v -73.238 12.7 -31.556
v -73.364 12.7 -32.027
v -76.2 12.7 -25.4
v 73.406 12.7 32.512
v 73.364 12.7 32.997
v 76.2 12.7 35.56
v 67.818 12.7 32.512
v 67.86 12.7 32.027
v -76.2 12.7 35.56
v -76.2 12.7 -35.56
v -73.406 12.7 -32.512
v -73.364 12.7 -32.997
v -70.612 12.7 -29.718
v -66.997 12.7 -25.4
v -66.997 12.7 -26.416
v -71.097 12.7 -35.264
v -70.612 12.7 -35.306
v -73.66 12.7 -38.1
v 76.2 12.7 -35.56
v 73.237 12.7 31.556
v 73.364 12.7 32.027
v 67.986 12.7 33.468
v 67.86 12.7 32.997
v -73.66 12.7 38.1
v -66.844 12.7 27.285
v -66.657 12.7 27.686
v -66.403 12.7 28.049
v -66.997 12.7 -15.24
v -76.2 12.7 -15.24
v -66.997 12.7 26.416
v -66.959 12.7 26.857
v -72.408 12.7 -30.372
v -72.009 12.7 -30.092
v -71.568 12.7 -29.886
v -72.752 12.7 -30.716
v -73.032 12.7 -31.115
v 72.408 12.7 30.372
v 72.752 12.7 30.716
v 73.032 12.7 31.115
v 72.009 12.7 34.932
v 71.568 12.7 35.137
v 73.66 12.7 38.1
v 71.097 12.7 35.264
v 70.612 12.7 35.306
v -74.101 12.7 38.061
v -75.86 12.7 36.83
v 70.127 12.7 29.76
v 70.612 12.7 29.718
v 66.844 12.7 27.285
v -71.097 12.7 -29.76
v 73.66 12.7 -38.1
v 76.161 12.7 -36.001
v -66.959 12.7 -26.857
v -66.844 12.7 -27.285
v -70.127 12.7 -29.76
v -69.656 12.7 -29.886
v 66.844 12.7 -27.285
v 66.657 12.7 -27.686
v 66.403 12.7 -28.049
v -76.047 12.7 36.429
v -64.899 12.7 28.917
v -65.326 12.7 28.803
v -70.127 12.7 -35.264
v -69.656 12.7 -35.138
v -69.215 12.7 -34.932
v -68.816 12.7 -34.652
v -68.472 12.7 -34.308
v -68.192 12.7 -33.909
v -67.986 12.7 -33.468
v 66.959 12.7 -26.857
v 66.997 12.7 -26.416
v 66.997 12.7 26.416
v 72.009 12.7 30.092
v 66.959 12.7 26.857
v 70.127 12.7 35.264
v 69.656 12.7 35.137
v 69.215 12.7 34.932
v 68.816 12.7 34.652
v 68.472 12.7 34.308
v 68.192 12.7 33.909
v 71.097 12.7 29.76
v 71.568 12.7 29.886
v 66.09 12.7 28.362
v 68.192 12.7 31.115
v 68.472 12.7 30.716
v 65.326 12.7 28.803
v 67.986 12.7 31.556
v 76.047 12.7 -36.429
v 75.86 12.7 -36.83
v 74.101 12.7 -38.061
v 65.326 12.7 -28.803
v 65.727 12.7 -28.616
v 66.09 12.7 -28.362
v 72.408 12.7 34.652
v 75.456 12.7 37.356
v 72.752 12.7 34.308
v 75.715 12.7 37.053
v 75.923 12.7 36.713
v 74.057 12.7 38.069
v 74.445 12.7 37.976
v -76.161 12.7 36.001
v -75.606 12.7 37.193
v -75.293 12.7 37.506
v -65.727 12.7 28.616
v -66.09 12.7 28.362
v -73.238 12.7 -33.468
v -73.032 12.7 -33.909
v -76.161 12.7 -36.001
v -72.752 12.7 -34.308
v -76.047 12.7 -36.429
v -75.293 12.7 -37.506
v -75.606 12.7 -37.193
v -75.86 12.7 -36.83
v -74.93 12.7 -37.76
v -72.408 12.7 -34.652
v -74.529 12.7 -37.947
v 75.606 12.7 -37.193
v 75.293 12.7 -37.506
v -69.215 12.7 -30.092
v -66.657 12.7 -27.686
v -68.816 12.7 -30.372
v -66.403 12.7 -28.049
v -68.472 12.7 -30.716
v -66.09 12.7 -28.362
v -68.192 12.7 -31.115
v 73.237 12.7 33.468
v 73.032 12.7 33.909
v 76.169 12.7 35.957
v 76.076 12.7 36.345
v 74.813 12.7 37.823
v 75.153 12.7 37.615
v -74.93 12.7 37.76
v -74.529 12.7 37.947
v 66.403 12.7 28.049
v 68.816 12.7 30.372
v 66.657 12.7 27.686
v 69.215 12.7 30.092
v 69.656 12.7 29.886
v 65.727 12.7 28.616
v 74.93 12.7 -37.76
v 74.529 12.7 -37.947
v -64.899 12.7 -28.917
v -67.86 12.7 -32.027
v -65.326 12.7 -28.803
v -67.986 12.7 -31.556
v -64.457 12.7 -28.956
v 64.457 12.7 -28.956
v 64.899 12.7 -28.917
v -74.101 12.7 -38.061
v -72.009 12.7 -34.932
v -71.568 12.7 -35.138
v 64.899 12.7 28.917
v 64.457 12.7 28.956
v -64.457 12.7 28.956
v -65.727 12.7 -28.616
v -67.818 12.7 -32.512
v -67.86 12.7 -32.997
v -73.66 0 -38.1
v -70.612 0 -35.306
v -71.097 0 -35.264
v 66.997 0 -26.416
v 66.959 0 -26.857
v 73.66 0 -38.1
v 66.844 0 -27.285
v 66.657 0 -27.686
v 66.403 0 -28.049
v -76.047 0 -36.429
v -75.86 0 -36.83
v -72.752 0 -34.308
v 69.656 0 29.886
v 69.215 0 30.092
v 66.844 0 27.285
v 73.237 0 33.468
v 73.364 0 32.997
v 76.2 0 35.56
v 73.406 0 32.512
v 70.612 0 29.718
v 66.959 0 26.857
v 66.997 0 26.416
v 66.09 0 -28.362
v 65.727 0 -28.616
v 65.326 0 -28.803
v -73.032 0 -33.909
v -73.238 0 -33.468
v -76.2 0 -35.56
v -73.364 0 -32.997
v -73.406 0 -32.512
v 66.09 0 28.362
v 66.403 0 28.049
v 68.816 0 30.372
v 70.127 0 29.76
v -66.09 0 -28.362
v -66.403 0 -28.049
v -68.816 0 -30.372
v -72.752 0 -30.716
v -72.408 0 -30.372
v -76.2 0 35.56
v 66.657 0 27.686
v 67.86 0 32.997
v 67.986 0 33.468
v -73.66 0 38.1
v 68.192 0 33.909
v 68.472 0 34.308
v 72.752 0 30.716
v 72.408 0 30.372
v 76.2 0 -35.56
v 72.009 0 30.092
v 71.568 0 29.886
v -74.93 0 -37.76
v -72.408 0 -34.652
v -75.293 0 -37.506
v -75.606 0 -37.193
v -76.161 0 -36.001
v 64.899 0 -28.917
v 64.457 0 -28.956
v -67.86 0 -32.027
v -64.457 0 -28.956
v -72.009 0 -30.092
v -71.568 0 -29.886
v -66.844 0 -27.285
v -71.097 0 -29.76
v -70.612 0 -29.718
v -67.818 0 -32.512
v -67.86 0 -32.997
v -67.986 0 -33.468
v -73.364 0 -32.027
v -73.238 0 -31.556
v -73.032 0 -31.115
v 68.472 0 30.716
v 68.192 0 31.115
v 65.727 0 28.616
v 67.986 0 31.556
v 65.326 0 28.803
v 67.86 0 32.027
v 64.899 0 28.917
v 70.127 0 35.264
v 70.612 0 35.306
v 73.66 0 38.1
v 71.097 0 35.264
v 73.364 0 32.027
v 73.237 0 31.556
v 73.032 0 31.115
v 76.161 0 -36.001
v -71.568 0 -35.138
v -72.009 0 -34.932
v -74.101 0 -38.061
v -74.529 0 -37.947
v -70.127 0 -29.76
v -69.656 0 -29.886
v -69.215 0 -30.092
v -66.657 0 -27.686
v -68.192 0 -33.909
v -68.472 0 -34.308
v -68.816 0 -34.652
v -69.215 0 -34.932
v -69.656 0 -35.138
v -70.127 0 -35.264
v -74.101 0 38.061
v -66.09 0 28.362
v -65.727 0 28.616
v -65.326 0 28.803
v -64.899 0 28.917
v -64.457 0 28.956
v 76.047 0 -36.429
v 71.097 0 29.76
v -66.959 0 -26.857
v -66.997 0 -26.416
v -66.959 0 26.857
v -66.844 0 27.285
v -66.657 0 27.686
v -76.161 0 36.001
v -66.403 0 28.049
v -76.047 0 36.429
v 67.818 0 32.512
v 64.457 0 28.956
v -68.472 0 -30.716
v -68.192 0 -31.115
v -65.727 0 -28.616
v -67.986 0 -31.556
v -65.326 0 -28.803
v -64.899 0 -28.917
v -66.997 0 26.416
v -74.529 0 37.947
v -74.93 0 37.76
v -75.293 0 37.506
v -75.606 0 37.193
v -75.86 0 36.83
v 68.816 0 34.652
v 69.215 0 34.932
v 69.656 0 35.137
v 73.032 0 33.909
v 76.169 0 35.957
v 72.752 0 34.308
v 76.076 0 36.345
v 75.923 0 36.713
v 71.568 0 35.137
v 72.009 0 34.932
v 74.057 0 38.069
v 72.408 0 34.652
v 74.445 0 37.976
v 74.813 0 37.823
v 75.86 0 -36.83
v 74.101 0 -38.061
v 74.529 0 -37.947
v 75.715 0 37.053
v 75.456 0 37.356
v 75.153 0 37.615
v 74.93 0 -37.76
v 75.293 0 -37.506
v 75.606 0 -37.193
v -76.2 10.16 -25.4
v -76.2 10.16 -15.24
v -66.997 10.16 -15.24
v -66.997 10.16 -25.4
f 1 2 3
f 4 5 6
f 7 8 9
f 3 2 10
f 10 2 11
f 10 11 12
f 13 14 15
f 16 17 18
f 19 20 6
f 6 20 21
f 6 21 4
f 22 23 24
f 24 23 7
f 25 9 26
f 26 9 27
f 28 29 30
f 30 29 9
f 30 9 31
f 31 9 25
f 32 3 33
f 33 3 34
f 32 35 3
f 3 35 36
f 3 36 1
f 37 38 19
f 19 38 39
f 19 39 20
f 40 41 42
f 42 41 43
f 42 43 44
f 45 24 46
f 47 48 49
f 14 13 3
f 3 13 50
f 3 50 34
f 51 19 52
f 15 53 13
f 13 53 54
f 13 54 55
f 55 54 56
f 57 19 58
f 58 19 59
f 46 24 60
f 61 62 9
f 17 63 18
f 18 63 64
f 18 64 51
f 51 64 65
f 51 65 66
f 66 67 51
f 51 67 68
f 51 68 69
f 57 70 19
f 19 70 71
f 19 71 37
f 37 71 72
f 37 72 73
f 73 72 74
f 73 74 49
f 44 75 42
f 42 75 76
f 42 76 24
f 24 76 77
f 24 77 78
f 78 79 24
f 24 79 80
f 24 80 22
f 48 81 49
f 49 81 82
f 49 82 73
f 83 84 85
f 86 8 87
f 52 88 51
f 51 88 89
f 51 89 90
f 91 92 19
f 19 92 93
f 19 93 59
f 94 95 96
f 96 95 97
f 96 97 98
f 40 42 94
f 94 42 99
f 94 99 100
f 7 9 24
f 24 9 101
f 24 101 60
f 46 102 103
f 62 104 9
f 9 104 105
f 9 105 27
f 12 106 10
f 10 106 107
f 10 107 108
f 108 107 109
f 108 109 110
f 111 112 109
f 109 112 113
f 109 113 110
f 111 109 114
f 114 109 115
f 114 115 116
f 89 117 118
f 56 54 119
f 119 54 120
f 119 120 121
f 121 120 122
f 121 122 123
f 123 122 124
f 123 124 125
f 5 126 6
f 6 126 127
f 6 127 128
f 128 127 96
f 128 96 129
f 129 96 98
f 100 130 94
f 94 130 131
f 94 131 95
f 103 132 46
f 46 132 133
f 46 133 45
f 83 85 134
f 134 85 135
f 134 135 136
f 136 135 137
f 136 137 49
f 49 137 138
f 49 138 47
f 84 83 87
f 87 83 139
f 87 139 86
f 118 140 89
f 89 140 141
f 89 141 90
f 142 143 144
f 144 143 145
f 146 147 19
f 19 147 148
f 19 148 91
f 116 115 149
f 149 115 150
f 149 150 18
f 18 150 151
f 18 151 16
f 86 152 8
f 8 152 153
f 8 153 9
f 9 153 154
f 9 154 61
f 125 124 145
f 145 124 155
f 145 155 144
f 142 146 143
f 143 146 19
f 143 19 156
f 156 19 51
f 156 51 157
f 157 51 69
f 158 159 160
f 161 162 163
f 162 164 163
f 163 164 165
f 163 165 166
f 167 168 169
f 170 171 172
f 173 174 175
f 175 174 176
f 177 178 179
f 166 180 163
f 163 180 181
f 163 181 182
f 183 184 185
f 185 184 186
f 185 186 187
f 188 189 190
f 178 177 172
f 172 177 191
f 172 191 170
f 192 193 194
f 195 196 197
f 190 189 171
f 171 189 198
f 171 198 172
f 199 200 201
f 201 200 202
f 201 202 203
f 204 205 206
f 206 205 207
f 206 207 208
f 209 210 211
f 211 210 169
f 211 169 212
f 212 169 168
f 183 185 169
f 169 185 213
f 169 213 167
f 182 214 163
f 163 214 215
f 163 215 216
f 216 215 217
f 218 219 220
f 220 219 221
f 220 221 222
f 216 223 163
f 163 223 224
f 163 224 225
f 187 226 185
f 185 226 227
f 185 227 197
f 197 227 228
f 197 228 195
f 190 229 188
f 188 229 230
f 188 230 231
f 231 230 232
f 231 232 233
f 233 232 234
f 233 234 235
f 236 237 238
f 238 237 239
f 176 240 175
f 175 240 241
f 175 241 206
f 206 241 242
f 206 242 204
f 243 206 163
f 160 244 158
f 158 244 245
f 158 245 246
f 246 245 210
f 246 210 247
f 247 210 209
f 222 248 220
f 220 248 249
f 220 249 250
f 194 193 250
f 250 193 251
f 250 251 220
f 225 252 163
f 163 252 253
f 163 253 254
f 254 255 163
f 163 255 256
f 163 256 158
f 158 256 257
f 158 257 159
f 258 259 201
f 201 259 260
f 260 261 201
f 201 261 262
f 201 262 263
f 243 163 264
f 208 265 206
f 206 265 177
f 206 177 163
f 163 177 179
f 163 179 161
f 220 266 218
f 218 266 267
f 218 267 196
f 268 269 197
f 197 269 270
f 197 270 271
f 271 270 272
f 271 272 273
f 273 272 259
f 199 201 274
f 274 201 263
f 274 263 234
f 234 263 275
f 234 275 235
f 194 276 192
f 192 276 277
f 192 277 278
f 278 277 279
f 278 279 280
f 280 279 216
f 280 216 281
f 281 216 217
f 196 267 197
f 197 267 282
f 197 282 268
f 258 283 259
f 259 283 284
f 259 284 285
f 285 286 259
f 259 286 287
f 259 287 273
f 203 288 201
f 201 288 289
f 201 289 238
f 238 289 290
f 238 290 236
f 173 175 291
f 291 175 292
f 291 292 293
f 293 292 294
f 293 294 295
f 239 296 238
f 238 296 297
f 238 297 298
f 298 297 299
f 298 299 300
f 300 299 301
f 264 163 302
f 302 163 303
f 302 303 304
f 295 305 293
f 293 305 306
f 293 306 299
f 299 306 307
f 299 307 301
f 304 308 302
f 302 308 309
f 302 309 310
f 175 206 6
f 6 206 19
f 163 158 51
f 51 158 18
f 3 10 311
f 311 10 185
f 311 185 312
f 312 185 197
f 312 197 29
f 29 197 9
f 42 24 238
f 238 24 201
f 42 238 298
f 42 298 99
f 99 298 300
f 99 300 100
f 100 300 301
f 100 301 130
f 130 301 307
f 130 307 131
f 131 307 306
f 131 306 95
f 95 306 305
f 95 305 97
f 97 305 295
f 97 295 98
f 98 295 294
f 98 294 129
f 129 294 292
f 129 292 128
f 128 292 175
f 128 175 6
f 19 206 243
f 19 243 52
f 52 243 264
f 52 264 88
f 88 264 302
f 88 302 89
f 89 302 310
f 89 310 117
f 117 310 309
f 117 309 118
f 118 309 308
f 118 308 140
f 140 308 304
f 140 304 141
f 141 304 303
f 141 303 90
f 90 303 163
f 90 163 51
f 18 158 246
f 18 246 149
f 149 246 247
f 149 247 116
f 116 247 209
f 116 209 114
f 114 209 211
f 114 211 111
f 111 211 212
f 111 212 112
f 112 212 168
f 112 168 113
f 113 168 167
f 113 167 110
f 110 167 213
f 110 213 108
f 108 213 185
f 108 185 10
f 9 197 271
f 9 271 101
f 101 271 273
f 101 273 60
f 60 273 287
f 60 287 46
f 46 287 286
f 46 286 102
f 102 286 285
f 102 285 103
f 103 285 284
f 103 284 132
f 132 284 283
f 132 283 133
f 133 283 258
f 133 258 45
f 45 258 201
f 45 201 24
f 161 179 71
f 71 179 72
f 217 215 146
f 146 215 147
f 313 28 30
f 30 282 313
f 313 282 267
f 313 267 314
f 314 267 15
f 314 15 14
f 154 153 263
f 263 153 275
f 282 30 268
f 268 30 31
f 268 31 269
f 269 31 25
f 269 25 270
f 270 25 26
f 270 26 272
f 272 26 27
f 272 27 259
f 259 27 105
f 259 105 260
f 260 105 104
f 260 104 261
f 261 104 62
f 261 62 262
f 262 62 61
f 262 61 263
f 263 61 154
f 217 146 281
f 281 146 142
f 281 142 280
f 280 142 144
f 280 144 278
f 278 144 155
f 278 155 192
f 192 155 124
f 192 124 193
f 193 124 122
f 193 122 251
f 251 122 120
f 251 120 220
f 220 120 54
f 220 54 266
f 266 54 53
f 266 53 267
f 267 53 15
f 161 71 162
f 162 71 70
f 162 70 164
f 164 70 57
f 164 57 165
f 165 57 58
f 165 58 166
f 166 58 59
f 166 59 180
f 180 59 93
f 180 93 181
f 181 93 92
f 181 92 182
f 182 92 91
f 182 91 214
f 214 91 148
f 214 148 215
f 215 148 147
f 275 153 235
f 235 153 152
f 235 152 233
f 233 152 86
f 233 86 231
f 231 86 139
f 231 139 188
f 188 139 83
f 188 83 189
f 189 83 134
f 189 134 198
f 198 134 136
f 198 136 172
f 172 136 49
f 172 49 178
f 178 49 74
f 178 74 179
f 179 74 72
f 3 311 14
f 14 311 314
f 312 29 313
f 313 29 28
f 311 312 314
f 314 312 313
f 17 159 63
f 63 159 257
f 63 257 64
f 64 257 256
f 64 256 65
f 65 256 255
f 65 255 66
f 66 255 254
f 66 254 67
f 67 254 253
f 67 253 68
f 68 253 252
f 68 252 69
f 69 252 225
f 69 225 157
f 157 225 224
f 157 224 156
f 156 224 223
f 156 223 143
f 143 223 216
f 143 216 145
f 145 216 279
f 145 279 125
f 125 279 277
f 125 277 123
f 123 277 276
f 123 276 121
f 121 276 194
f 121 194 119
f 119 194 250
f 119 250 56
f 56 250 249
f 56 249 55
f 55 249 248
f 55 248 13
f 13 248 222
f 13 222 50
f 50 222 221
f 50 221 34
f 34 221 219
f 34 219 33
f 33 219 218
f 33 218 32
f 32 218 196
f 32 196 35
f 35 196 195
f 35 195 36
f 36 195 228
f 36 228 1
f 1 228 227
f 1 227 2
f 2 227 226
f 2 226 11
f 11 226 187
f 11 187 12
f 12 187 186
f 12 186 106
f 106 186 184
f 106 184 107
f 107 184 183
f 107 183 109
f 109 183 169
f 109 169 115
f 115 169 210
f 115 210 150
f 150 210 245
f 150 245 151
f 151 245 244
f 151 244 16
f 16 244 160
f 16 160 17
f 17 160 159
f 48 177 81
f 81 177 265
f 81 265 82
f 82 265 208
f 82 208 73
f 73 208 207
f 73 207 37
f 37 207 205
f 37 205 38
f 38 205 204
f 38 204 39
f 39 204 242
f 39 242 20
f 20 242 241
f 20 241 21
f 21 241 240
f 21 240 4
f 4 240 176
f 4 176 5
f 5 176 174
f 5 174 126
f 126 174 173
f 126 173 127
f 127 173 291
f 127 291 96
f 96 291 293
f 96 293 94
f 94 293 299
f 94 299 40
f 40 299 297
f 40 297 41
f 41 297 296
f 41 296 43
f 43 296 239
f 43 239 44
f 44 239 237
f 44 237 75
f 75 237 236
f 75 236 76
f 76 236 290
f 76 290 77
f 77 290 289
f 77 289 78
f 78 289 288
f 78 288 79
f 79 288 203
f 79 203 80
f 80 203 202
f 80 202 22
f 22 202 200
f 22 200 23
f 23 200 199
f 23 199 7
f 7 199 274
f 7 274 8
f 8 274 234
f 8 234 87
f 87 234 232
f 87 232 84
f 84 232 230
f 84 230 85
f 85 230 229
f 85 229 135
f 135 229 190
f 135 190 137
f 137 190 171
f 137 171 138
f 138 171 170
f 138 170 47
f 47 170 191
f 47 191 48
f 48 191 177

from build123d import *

# Parameters (mm, degrees)
SKETCH1_W           = 152.4
SKETCH1_H           = 76.2
BOSS_EXTRUDE1_DEPTH = 12.7
FILLET1_R           = 2.54
SKETCH3_W           = 133.99496637
SKETCH3_H           = 57.912
CUT_EXTRUDE4_DEPTH  = 13.7
FILLET2_R           = 2.54
SKETCH2_W           = 10.16
SKETCH2_H           = 2.54
CUT_EXTRUDE5_DEPTH  = 12.7
SKETCH4_R           = 2.794
CUT_EXTRUDE6_DEPTH  = 12.7
SKETCH5_R           = 2.794
CUT_EXTRUDE7_DEPTH  = 12.7


with BuildPart() as part:
    # Sketch1 → Boss-Extrude1 (new body)
    with BuildSketch(Plane(origin=(0, 0, 0), x_dir=(1, 0, 0), z_dir=(0, 1, 0))):
        Rectangle(SKETCH1_W, SKETCH1_H)
    extrude(amount=BOSS_EXTRUDE1_DEPTH)

    # Fillet1
    fillet1_edges = [part.edges().sort_by_distance(p)[0] for p in [
        (76.2, 6.35, 38.1),
        (-76.2, 6.35, 38.1),
        (-76.2, 6.35, -38.1),
        (76.2, 6.35, -38.1),
    ]]
    fillet(fillet1_edges, radius=FILLET1_R)

    # Sketch3 → Cut-Extrude4 (cut, through all)
    with BuildSketch(Plane(origin=(0, 0, 0), x_dir=(1, 0, 0), z_dir=(0, 1, 0))):
        Rectangle(SKETCH3_W, SKETCH3_H)
    extrude(amount=CUT_EXTRUDE4_DEPTH, mode=Mode.SUBTRACT)

    # Fillet2
    fillet2_edges = [part.edges().sort_by_distance(p)[0] for p in [
        (66.997483185, 6.35, 28.956),
        (66.997483185, 6.35, -28.956),
        (-66.997483185, 6.35, -28.956),
        (-66.997483185, 6.35, 28.956),
    ]]
    fillet(fillet2_edges, radius=FILLET2_R)

    # Sketch2 → Cut-Extrude5 (cut)
    with BuildSketch(Plane.ZY.offset(76.2)):
        with Locations((-20.32, 11.43)):
            Rectangle(SKETCH2_W, SKETCH2_H)
    extrude(amount=-CUT_EXTRUDE5_DEPTH, mode=Mode.SUBTRACT)

    # Sketch4 → Cut-Extrude6 (cut)
    with BuildSketch(Plane(origin=(0, 0, 0), x_dir=(1, 0, 0), z_dir=(0, 1, 0))):
        with Locations((-70.612, 32.512)):
            Circle(SKETCH4_R)
    extrude(amount=CUT_EXTRUDE6_DEPTH, mode=Mode.SUBTRACT)

    # Sketch5 → Cut-Extrude7 (cut)
    with BuildSketch(Plane(origin=(0, 0, 0), x_dir=(1, 0, 0), z_dir=(0, 1, 0))):
        with Locations((70.612, -32.512)):
            Circle(SKETCH5_R)
    extrude(amount=CUT_EXTRUDE7_DEPTH, mode=Mode.SUBTRACT)


solid = part.part
